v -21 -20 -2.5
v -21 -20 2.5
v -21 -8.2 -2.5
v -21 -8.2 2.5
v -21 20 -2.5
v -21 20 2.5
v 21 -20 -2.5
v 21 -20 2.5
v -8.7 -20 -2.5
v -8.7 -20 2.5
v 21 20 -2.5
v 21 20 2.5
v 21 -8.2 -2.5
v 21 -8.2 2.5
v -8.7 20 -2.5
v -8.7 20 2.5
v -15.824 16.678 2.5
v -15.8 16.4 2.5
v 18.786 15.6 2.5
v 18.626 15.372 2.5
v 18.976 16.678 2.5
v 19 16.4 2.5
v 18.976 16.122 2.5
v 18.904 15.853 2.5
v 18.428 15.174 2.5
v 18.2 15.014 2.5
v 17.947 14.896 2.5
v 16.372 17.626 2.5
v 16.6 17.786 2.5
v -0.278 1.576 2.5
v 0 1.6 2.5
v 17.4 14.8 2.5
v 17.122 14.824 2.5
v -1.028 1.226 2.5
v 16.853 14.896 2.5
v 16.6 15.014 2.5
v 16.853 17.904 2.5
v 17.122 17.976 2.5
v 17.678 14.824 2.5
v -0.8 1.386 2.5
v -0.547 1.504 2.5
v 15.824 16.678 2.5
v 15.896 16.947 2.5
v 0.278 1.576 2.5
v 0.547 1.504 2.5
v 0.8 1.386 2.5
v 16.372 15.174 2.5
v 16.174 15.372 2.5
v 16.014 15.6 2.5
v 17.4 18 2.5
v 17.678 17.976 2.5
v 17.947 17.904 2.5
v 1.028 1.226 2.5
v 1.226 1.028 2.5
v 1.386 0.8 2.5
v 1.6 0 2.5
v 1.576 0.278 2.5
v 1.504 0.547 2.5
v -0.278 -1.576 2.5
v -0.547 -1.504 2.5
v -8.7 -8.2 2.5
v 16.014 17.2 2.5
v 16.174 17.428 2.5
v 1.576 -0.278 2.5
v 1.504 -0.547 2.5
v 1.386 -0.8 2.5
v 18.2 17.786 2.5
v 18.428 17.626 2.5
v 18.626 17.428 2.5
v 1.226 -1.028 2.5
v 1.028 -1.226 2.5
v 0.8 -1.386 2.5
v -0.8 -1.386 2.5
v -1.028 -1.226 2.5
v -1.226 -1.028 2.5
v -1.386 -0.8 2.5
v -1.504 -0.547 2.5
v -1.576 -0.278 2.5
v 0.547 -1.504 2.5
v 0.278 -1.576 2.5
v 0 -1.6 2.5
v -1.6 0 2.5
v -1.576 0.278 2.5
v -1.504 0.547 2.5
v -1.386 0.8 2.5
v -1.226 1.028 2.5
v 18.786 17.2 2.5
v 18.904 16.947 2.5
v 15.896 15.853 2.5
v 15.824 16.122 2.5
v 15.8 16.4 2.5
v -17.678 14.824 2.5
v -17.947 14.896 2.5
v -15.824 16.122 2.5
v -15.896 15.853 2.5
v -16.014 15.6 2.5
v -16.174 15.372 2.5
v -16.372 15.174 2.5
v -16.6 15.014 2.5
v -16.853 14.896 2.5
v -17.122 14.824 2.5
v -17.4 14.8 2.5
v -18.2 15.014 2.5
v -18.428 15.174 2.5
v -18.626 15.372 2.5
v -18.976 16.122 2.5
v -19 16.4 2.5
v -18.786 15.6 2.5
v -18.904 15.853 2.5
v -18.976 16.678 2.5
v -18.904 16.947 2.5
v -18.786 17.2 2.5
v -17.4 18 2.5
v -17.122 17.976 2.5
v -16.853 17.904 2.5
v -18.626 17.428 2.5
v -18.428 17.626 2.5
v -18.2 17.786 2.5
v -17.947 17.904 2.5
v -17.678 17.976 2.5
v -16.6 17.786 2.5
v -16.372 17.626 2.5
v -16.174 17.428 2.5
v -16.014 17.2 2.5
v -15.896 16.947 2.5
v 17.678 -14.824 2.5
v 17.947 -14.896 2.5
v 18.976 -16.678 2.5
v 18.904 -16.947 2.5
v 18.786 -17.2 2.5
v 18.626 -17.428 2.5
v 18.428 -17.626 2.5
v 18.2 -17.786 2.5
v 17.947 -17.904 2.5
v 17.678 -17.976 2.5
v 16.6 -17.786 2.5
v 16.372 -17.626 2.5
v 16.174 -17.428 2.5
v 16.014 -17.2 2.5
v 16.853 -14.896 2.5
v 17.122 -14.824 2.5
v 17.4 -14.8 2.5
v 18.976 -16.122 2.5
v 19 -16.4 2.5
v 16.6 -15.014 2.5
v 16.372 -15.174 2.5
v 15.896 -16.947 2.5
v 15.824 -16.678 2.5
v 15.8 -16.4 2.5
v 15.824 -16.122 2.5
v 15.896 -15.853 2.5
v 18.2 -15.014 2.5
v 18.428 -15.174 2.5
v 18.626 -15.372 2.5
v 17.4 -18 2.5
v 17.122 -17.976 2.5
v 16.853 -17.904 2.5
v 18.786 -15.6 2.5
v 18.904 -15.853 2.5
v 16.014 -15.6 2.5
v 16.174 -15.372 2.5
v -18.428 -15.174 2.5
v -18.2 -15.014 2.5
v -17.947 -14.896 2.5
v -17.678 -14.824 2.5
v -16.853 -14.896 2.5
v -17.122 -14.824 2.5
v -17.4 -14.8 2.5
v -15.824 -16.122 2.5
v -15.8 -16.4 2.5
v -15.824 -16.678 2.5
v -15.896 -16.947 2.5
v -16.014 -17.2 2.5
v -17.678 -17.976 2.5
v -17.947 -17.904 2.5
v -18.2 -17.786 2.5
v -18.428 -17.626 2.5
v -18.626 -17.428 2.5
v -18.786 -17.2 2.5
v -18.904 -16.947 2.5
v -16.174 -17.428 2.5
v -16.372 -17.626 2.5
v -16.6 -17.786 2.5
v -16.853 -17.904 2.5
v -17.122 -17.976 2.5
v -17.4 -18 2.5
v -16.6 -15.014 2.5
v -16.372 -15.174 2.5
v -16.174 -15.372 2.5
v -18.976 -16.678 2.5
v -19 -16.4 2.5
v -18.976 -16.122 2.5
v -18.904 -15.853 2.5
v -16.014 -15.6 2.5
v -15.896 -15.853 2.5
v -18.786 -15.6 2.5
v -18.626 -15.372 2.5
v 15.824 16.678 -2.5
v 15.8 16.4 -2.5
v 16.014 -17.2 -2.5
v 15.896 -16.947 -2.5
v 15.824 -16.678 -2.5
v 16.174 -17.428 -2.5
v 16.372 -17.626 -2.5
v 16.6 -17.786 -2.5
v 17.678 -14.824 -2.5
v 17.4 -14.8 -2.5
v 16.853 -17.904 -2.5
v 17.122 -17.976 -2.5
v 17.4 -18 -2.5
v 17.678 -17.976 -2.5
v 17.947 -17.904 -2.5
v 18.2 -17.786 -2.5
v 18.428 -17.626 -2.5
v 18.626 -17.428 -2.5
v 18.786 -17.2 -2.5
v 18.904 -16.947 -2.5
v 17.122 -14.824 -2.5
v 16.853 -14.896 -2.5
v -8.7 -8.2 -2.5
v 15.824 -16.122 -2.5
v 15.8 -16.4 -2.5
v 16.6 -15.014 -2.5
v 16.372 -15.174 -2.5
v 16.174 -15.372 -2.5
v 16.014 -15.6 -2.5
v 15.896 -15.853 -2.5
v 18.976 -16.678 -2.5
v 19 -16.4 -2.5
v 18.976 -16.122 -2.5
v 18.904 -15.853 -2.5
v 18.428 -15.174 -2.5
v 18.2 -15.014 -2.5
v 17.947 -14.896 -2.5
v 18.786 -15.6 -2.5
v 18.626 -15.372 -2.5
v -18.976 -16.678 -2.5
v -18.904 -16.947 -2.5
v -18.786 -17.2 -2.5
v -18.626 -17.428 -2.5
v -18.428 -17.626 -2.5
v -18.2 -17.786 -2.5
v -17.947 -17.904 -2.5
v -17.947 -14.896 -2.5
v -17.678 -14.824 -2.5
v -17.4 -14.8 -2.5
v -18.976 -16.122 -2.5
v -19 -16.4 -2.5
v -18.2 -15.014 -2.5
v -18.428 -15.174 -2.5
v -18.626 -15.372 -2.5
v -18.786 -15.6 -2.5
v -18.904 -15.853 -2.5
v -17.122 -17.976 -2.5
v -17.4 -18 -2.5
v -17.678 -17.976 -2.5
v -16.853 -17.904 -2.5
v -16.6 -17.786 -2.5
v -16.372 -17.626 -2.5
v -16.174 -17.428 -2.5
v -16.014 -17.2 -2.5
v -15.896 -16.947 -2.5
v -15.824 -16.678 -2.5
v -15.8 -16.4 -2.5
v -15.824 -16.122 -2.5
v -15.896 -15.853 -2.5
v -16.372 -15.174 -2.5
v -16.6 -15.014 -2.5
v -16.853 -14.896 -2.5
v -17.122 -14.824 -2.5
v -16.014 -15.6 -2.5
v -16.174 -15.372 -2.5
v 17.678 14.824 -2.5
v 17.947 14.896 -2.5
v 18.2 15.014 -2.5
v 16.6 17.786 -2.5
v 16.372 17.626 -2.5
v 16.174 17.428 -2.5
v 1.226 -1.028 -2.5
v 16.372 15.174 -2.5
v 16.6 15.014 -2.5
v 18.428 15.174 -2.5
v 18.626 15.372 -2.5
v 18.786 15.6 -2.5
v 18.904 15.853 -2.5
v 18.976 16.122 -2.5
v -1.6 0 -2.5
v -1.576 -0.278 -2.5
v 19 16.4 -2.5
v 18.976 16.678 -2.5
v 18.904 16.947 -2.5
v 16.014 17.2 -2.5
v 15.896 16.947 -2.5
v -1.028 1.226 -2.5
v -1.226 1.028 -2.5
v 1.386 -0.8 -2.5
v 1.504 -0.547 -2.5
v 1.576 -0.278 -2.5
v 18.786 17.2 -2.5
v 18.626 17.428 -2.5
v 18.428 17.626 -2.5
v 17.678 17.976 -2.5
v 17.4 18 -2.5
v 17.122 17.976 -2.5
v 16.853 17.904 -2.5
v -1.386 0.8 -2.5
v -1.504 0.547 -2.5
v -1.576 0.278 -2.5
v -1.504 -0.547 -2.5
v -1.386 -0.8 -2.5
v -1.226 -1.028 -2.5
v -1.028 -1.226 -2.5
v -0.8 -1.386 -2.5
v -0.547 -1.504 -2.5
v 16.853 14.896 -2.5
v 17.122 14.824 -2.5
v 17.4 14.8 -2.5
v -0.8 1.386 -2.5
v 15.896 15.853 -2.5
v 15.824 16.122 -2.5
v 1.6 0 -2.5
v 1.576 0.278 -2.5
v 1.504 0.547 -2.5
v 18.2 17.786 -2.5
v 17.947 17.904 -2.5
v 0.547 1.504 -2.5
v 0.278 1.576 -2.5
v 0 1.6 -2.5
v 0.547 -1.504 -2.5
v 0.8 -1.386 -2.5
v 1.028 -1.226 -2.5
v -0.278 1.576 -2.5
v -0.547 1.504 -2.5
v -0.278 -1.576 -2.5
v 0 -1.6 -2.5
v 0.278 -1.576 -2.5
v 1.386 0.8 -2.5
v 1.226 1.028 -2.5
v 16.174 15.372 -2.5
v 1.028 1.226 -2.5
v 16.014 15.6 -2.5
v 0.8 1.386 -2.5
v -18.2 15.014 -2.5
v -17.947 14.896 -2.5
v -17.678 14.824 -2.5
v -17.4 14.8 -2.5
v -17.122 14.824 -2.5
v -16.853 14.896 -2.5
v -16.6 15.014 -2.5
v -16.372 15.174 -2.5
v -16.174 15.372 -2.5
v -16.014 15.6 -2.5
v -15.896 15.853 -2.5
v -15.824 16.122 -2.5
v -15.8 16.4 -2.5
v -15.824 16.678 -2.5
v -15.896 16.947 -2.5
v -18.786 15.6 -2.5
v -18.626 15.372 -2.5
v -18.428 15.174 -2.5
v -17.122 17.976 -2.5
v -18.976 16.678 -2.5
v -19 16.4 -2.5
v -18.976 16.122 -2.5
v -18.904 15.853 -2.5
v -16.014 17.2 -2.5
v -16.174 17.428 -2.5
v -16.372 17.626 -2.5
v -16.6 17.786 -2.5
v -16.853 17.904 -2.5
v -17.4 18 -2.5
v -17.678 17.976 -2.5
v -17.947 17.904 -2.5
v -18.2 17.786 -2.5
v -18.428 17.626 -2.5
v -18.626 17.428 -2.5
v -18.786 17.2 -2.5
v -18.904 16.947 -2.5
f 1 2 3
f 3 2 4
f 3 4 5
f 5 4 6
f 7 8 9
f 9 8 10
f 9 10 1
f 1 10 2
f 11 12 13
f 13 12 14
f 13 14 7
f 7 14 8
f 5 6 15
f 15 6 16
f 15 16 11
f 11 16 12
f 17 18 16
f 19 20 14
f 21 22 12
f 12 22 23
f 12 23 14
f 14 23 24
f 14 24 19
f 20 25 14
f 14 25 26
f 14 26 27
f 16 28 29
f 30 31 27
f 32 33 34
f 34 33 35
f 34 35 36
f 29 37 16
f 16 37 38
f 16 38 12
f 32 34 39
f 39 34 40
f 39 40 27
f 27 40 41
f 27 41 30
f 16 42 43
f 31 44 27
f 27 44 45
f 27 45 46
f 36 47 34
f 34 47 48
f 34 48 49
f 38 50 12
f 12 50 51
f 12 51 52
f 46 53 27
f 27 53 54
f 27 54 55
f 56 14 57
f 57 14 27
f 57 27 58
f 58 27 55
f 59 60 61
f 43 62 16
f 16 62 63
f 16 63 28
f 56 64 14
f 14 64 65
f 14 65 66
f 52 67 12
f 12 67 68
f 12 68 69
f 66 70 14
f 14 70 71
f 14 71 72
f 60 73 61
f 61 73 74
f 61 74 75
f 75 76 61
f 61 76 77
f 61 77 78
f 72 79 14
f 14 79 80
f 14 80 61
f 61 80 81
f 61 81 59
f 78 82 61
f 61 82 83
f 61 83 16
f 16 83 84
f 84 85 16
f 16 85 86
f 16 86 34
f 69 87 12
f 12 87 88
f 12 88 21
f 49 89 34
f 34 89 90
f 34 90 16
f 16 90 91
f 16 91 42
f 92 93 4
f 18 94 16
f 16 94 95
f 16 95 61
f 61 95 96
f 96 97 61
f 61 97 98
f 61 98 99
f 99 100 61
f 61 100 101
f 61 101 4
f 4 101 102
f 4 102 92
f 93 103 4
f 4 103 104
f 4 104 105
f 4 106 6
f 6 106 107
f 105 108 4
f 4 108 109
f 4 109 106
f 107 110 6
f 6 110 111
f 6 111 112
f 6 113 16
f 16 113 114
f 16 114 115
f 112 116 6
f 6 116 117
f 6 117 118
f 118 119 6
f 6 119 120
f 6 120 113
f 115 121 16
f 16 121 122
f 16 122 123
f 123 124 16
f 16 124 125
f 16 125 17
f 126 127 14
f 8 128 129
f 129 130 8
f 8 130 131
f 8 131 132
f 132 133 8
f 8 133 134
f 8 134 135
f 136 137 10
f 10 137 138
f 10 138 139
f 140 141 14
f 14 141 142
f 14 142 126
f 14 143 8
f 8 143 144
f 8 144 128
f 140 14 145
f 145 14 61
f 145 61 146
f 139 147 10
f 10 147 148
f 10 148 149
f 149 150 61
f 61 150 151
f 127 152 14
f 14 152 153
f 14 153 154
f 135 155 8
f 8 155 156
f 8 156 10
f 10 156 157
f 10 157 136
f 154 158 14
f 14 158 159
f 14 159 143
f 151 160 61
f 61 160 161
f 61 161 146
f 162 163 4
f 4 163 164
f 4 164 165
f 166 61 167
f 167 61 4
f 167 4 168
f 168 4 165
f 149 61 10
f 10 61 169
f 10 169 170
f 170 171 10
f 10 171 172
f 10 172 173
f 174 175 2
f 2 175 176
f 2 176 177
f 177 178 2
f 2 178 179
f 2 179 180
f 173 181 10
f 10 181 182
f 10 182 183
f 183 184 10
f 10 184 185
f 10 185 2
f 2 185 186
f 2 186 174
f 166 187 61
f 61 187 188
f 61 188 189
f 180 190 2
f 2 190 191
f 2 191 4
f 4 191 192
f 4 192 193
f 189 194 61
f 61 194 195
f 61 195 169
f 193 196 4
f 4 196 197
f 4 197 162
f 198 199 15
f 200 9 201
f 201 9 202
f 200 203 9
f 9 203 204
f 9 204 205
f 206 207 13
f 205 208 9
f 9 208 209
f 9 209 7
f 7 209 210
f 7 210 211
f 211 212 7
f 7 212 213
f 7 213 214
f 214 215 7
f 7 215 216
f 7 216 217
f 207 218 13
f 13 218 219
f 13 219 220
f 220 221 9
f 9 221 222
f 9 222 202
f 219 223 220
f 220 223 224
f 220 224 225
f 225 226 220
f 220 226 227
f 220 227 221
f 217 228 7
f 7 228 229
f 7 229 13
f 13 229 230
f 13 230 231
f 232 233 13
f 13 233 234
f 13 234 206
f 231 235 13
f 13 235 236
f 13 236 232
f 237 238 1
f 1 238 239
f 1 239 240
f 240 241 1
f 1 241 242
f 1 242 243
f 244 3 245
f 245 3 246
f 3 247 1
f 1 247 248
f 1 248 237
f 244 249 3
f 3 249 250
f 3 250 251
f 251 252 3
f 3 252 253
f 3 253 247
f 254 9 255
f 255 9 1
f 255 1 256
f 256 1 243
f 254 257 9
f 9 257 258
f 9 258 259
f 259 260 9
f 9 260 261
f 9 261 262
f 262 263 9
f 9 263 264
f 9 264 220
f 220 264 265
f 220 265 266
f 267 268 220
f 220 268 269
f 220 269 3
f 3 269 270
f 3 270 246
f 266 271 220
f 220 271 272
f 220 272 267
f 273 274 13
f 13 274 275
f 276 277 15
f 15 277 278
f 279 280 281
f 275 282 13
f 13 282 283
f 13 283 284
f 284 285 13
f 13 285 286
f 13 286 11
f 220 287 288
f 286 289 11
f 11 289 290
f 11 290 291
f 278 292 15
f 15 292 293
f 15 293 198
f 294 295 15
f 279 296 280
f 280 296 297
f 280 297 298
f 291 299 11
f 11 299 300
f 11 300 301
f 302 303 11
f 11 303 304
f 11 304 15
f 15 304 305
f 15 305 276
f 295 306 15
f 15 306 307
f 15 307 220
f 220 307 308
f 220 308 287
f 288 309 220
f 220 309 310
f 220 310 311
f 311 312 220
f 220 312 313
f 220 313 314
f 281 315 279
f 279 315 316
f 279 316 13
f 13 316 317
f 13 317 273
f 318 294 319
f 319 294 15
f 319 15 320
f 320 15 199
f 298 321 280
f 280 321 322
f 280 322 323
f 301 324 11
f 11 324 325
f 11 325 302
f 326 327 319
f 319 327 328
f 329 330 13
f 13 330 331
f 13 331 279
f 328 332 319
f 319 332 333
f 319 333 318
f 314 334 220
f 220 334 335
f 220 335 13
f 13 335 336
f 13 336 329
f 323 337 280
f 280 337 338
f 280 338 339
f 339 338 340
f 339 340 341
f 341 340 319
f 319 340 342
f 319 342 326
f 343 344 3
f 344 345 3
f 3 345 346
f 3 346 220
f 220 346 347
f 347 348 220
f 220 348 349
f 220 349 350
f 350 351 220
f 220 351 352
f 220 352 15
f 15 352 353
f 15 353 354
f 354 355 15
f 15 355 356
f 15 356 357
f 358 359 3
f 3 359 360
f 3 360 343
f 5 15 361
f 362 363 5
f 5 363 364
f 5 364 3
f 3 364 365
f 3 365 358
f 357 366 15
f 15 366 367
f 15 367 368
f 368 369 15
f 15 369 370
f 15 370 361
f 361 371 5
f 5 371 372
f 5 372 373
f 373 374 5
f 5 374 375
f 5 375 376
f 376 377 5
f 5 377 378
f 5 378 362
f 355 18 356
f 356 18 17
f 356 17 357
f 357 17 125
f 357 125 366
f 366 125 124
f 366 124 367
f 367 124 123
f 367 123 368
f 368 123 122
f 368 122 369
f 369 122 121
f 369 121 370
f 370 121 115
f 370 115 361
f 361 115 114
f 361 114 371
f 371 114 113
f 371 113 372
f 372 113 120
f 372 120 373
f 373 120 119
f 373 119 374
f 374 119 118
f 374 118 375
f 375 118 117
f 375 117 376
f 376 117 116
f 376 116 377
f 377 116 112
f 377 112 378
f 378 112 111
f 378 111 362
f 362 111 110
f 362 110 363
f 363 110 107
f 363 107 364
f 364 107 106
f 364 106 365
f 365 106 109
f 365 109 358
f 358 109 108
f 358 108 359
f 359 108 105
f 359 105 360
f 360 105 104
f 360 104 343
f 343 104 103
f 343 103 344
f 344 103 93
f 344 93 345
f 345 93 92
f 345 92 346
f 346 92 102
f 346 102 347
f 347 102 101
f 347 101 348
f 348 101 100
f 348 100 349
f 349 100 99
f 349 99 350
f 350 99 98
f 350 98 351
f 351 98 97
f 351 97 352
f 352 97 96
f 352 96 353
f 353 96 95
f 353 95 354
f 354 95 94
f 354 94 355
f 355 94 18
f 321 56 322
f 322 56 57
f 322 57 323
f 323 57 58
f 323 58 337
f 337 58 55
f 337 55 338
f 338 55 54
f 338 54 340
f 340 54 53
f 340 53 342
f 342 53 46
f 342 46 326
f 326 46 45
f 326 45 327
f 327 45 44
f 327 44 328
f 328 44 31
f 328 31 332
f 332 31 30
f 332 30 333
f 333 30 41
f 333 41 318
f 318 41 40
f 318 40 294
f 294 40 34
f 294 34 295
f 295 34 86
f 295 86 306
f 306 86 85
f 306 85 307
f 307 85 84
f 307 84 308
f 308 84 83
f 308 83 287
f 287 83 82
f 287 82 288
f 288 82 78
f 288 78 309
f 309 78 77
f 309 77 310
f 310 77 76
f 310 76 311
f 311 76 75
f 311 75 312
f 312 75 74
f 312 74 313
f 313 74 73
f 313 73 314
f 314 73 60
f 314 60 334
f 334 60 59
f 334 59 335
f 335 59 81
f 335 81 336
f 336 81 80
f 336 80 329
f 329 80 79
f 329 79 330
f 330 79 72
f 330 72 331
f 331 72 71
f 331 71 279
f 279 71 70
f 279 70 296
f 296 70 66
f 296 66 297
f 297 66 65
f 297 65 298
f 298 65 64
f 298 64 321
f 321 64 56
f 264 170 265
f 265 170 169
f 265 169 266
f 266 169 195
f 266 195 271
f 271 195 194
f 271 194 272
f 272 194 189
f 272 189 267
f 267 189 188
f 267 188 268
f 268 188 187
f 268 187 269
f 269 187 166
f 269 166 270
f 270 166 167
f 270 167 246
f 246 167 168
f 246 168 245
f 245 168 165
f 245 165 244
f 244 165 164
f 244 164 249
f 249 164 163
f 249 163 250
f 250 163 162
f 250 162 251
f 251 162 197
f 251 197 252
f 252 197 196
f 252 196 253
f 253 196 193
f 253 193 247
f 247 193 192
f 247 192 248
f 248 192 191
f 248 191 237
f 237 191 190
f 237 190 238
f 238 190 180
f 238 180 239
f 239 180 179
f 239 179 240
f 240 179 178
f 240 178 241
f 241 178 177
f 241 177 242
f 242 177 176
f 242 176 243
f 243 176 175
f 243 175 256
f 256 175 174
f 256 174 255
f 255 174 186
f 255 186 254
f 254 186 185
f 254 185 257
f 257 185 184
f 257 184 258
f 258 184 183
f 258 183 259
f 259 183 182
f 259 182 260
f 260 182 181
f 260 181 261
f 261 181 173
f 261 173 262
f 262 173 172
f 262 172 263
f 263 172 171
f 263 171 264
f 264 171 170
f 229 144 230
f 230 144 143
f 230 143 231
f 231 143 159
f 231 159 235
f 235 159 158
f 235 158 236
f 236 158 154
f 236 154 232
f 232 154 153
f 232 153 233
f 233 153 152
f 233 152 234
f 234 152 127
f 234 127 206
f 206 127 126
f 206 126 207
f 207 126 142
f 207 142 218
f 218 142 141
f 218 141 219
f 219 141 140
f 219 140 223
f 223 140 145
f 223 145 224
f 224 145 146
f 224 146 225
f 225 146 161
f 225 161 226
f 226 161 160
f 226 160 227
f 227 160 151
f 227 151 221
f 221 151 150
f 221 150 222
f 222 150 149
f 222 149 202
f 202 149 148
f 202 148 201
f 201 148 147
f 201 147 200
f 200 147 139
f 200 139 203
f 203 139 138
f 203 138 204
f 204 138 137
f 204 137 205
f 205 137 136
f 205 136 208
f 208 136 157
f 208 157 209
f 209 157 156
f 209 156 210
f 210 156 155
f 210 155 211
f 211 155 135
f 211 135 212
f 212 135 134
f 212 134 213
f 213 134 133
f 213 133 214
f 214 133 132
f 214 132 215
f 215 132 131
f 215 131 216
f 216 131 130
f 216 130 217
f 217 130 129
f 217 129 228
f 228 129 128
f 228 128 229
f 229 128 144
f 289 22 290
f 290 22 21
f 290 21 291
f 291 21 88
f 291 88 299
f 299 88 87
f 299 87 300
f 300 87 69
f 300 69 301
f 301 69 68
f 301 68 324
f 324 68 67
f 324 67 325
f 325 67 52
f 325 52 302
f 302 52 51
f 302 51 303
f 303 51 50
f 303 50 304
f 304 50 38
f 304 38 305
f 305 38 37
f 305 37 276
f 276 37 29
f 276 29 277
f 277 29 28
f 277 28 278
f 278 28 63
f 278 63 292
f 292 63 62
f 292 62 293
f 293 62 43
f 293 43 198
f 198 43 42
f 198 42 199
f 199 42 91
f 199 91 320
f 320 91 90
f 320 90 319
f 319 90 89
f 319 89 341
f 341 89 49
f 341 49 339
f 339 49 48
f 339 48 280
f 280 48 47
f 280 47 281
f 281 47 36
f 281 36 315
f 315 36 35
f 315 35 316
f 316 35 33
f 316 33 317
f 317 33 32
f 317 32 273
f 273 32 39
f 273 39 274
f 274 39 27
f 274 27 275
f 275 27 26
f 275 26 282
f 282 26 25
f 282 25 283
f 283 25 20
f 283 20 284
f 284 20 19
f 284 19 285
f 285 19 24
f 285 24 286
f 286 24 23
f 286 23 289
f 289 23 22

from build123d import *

# Parameters (mm, degrees)
SKETCH1_W           = 42
SKETCH1_H           = 40
BOSS_EXTRUDE1_DEPTH = 2.5
SKETCH2_R           = 1.6
CUT_EXTRUDE1_DEPTH  = 30.427877939


with BuildPart() as part:
    # Sketch1 → Boss-Extrude1 (new, symmetric)
    with BuildSketch(Plane.XY):
        Rectangle(SKETCH1_W, SKETCH1_H)
    extrude(amount=BOSS_EXTRUDE1_DEPTH, both=True)

    # Sketch2 → Cut-Extrude1 (cut, through all)
    with BuildSketch(Plane.XY.offset(2.5)):
        with Locations((-17.4, 16.4)):
            Circle(SKETCH2_R)
        with Locations(Location((17.4, 16.4, 0), (0, 0, 180))):
            Circle(SKETCH2_R)
        with Locations((17.4, -16.4)):
            Circle(SKETCH2_R)
        with Locations(Location((-17.4, -16.4, 0), (0, 0, 180))):
            Circle(SKETCH2_R)
        Circle(SKETCH2_R)
    extrude(amount=-CUT_EXTRUDE1_DEPTH, mode=Mode.SUBTRACT)


solid = part.part
